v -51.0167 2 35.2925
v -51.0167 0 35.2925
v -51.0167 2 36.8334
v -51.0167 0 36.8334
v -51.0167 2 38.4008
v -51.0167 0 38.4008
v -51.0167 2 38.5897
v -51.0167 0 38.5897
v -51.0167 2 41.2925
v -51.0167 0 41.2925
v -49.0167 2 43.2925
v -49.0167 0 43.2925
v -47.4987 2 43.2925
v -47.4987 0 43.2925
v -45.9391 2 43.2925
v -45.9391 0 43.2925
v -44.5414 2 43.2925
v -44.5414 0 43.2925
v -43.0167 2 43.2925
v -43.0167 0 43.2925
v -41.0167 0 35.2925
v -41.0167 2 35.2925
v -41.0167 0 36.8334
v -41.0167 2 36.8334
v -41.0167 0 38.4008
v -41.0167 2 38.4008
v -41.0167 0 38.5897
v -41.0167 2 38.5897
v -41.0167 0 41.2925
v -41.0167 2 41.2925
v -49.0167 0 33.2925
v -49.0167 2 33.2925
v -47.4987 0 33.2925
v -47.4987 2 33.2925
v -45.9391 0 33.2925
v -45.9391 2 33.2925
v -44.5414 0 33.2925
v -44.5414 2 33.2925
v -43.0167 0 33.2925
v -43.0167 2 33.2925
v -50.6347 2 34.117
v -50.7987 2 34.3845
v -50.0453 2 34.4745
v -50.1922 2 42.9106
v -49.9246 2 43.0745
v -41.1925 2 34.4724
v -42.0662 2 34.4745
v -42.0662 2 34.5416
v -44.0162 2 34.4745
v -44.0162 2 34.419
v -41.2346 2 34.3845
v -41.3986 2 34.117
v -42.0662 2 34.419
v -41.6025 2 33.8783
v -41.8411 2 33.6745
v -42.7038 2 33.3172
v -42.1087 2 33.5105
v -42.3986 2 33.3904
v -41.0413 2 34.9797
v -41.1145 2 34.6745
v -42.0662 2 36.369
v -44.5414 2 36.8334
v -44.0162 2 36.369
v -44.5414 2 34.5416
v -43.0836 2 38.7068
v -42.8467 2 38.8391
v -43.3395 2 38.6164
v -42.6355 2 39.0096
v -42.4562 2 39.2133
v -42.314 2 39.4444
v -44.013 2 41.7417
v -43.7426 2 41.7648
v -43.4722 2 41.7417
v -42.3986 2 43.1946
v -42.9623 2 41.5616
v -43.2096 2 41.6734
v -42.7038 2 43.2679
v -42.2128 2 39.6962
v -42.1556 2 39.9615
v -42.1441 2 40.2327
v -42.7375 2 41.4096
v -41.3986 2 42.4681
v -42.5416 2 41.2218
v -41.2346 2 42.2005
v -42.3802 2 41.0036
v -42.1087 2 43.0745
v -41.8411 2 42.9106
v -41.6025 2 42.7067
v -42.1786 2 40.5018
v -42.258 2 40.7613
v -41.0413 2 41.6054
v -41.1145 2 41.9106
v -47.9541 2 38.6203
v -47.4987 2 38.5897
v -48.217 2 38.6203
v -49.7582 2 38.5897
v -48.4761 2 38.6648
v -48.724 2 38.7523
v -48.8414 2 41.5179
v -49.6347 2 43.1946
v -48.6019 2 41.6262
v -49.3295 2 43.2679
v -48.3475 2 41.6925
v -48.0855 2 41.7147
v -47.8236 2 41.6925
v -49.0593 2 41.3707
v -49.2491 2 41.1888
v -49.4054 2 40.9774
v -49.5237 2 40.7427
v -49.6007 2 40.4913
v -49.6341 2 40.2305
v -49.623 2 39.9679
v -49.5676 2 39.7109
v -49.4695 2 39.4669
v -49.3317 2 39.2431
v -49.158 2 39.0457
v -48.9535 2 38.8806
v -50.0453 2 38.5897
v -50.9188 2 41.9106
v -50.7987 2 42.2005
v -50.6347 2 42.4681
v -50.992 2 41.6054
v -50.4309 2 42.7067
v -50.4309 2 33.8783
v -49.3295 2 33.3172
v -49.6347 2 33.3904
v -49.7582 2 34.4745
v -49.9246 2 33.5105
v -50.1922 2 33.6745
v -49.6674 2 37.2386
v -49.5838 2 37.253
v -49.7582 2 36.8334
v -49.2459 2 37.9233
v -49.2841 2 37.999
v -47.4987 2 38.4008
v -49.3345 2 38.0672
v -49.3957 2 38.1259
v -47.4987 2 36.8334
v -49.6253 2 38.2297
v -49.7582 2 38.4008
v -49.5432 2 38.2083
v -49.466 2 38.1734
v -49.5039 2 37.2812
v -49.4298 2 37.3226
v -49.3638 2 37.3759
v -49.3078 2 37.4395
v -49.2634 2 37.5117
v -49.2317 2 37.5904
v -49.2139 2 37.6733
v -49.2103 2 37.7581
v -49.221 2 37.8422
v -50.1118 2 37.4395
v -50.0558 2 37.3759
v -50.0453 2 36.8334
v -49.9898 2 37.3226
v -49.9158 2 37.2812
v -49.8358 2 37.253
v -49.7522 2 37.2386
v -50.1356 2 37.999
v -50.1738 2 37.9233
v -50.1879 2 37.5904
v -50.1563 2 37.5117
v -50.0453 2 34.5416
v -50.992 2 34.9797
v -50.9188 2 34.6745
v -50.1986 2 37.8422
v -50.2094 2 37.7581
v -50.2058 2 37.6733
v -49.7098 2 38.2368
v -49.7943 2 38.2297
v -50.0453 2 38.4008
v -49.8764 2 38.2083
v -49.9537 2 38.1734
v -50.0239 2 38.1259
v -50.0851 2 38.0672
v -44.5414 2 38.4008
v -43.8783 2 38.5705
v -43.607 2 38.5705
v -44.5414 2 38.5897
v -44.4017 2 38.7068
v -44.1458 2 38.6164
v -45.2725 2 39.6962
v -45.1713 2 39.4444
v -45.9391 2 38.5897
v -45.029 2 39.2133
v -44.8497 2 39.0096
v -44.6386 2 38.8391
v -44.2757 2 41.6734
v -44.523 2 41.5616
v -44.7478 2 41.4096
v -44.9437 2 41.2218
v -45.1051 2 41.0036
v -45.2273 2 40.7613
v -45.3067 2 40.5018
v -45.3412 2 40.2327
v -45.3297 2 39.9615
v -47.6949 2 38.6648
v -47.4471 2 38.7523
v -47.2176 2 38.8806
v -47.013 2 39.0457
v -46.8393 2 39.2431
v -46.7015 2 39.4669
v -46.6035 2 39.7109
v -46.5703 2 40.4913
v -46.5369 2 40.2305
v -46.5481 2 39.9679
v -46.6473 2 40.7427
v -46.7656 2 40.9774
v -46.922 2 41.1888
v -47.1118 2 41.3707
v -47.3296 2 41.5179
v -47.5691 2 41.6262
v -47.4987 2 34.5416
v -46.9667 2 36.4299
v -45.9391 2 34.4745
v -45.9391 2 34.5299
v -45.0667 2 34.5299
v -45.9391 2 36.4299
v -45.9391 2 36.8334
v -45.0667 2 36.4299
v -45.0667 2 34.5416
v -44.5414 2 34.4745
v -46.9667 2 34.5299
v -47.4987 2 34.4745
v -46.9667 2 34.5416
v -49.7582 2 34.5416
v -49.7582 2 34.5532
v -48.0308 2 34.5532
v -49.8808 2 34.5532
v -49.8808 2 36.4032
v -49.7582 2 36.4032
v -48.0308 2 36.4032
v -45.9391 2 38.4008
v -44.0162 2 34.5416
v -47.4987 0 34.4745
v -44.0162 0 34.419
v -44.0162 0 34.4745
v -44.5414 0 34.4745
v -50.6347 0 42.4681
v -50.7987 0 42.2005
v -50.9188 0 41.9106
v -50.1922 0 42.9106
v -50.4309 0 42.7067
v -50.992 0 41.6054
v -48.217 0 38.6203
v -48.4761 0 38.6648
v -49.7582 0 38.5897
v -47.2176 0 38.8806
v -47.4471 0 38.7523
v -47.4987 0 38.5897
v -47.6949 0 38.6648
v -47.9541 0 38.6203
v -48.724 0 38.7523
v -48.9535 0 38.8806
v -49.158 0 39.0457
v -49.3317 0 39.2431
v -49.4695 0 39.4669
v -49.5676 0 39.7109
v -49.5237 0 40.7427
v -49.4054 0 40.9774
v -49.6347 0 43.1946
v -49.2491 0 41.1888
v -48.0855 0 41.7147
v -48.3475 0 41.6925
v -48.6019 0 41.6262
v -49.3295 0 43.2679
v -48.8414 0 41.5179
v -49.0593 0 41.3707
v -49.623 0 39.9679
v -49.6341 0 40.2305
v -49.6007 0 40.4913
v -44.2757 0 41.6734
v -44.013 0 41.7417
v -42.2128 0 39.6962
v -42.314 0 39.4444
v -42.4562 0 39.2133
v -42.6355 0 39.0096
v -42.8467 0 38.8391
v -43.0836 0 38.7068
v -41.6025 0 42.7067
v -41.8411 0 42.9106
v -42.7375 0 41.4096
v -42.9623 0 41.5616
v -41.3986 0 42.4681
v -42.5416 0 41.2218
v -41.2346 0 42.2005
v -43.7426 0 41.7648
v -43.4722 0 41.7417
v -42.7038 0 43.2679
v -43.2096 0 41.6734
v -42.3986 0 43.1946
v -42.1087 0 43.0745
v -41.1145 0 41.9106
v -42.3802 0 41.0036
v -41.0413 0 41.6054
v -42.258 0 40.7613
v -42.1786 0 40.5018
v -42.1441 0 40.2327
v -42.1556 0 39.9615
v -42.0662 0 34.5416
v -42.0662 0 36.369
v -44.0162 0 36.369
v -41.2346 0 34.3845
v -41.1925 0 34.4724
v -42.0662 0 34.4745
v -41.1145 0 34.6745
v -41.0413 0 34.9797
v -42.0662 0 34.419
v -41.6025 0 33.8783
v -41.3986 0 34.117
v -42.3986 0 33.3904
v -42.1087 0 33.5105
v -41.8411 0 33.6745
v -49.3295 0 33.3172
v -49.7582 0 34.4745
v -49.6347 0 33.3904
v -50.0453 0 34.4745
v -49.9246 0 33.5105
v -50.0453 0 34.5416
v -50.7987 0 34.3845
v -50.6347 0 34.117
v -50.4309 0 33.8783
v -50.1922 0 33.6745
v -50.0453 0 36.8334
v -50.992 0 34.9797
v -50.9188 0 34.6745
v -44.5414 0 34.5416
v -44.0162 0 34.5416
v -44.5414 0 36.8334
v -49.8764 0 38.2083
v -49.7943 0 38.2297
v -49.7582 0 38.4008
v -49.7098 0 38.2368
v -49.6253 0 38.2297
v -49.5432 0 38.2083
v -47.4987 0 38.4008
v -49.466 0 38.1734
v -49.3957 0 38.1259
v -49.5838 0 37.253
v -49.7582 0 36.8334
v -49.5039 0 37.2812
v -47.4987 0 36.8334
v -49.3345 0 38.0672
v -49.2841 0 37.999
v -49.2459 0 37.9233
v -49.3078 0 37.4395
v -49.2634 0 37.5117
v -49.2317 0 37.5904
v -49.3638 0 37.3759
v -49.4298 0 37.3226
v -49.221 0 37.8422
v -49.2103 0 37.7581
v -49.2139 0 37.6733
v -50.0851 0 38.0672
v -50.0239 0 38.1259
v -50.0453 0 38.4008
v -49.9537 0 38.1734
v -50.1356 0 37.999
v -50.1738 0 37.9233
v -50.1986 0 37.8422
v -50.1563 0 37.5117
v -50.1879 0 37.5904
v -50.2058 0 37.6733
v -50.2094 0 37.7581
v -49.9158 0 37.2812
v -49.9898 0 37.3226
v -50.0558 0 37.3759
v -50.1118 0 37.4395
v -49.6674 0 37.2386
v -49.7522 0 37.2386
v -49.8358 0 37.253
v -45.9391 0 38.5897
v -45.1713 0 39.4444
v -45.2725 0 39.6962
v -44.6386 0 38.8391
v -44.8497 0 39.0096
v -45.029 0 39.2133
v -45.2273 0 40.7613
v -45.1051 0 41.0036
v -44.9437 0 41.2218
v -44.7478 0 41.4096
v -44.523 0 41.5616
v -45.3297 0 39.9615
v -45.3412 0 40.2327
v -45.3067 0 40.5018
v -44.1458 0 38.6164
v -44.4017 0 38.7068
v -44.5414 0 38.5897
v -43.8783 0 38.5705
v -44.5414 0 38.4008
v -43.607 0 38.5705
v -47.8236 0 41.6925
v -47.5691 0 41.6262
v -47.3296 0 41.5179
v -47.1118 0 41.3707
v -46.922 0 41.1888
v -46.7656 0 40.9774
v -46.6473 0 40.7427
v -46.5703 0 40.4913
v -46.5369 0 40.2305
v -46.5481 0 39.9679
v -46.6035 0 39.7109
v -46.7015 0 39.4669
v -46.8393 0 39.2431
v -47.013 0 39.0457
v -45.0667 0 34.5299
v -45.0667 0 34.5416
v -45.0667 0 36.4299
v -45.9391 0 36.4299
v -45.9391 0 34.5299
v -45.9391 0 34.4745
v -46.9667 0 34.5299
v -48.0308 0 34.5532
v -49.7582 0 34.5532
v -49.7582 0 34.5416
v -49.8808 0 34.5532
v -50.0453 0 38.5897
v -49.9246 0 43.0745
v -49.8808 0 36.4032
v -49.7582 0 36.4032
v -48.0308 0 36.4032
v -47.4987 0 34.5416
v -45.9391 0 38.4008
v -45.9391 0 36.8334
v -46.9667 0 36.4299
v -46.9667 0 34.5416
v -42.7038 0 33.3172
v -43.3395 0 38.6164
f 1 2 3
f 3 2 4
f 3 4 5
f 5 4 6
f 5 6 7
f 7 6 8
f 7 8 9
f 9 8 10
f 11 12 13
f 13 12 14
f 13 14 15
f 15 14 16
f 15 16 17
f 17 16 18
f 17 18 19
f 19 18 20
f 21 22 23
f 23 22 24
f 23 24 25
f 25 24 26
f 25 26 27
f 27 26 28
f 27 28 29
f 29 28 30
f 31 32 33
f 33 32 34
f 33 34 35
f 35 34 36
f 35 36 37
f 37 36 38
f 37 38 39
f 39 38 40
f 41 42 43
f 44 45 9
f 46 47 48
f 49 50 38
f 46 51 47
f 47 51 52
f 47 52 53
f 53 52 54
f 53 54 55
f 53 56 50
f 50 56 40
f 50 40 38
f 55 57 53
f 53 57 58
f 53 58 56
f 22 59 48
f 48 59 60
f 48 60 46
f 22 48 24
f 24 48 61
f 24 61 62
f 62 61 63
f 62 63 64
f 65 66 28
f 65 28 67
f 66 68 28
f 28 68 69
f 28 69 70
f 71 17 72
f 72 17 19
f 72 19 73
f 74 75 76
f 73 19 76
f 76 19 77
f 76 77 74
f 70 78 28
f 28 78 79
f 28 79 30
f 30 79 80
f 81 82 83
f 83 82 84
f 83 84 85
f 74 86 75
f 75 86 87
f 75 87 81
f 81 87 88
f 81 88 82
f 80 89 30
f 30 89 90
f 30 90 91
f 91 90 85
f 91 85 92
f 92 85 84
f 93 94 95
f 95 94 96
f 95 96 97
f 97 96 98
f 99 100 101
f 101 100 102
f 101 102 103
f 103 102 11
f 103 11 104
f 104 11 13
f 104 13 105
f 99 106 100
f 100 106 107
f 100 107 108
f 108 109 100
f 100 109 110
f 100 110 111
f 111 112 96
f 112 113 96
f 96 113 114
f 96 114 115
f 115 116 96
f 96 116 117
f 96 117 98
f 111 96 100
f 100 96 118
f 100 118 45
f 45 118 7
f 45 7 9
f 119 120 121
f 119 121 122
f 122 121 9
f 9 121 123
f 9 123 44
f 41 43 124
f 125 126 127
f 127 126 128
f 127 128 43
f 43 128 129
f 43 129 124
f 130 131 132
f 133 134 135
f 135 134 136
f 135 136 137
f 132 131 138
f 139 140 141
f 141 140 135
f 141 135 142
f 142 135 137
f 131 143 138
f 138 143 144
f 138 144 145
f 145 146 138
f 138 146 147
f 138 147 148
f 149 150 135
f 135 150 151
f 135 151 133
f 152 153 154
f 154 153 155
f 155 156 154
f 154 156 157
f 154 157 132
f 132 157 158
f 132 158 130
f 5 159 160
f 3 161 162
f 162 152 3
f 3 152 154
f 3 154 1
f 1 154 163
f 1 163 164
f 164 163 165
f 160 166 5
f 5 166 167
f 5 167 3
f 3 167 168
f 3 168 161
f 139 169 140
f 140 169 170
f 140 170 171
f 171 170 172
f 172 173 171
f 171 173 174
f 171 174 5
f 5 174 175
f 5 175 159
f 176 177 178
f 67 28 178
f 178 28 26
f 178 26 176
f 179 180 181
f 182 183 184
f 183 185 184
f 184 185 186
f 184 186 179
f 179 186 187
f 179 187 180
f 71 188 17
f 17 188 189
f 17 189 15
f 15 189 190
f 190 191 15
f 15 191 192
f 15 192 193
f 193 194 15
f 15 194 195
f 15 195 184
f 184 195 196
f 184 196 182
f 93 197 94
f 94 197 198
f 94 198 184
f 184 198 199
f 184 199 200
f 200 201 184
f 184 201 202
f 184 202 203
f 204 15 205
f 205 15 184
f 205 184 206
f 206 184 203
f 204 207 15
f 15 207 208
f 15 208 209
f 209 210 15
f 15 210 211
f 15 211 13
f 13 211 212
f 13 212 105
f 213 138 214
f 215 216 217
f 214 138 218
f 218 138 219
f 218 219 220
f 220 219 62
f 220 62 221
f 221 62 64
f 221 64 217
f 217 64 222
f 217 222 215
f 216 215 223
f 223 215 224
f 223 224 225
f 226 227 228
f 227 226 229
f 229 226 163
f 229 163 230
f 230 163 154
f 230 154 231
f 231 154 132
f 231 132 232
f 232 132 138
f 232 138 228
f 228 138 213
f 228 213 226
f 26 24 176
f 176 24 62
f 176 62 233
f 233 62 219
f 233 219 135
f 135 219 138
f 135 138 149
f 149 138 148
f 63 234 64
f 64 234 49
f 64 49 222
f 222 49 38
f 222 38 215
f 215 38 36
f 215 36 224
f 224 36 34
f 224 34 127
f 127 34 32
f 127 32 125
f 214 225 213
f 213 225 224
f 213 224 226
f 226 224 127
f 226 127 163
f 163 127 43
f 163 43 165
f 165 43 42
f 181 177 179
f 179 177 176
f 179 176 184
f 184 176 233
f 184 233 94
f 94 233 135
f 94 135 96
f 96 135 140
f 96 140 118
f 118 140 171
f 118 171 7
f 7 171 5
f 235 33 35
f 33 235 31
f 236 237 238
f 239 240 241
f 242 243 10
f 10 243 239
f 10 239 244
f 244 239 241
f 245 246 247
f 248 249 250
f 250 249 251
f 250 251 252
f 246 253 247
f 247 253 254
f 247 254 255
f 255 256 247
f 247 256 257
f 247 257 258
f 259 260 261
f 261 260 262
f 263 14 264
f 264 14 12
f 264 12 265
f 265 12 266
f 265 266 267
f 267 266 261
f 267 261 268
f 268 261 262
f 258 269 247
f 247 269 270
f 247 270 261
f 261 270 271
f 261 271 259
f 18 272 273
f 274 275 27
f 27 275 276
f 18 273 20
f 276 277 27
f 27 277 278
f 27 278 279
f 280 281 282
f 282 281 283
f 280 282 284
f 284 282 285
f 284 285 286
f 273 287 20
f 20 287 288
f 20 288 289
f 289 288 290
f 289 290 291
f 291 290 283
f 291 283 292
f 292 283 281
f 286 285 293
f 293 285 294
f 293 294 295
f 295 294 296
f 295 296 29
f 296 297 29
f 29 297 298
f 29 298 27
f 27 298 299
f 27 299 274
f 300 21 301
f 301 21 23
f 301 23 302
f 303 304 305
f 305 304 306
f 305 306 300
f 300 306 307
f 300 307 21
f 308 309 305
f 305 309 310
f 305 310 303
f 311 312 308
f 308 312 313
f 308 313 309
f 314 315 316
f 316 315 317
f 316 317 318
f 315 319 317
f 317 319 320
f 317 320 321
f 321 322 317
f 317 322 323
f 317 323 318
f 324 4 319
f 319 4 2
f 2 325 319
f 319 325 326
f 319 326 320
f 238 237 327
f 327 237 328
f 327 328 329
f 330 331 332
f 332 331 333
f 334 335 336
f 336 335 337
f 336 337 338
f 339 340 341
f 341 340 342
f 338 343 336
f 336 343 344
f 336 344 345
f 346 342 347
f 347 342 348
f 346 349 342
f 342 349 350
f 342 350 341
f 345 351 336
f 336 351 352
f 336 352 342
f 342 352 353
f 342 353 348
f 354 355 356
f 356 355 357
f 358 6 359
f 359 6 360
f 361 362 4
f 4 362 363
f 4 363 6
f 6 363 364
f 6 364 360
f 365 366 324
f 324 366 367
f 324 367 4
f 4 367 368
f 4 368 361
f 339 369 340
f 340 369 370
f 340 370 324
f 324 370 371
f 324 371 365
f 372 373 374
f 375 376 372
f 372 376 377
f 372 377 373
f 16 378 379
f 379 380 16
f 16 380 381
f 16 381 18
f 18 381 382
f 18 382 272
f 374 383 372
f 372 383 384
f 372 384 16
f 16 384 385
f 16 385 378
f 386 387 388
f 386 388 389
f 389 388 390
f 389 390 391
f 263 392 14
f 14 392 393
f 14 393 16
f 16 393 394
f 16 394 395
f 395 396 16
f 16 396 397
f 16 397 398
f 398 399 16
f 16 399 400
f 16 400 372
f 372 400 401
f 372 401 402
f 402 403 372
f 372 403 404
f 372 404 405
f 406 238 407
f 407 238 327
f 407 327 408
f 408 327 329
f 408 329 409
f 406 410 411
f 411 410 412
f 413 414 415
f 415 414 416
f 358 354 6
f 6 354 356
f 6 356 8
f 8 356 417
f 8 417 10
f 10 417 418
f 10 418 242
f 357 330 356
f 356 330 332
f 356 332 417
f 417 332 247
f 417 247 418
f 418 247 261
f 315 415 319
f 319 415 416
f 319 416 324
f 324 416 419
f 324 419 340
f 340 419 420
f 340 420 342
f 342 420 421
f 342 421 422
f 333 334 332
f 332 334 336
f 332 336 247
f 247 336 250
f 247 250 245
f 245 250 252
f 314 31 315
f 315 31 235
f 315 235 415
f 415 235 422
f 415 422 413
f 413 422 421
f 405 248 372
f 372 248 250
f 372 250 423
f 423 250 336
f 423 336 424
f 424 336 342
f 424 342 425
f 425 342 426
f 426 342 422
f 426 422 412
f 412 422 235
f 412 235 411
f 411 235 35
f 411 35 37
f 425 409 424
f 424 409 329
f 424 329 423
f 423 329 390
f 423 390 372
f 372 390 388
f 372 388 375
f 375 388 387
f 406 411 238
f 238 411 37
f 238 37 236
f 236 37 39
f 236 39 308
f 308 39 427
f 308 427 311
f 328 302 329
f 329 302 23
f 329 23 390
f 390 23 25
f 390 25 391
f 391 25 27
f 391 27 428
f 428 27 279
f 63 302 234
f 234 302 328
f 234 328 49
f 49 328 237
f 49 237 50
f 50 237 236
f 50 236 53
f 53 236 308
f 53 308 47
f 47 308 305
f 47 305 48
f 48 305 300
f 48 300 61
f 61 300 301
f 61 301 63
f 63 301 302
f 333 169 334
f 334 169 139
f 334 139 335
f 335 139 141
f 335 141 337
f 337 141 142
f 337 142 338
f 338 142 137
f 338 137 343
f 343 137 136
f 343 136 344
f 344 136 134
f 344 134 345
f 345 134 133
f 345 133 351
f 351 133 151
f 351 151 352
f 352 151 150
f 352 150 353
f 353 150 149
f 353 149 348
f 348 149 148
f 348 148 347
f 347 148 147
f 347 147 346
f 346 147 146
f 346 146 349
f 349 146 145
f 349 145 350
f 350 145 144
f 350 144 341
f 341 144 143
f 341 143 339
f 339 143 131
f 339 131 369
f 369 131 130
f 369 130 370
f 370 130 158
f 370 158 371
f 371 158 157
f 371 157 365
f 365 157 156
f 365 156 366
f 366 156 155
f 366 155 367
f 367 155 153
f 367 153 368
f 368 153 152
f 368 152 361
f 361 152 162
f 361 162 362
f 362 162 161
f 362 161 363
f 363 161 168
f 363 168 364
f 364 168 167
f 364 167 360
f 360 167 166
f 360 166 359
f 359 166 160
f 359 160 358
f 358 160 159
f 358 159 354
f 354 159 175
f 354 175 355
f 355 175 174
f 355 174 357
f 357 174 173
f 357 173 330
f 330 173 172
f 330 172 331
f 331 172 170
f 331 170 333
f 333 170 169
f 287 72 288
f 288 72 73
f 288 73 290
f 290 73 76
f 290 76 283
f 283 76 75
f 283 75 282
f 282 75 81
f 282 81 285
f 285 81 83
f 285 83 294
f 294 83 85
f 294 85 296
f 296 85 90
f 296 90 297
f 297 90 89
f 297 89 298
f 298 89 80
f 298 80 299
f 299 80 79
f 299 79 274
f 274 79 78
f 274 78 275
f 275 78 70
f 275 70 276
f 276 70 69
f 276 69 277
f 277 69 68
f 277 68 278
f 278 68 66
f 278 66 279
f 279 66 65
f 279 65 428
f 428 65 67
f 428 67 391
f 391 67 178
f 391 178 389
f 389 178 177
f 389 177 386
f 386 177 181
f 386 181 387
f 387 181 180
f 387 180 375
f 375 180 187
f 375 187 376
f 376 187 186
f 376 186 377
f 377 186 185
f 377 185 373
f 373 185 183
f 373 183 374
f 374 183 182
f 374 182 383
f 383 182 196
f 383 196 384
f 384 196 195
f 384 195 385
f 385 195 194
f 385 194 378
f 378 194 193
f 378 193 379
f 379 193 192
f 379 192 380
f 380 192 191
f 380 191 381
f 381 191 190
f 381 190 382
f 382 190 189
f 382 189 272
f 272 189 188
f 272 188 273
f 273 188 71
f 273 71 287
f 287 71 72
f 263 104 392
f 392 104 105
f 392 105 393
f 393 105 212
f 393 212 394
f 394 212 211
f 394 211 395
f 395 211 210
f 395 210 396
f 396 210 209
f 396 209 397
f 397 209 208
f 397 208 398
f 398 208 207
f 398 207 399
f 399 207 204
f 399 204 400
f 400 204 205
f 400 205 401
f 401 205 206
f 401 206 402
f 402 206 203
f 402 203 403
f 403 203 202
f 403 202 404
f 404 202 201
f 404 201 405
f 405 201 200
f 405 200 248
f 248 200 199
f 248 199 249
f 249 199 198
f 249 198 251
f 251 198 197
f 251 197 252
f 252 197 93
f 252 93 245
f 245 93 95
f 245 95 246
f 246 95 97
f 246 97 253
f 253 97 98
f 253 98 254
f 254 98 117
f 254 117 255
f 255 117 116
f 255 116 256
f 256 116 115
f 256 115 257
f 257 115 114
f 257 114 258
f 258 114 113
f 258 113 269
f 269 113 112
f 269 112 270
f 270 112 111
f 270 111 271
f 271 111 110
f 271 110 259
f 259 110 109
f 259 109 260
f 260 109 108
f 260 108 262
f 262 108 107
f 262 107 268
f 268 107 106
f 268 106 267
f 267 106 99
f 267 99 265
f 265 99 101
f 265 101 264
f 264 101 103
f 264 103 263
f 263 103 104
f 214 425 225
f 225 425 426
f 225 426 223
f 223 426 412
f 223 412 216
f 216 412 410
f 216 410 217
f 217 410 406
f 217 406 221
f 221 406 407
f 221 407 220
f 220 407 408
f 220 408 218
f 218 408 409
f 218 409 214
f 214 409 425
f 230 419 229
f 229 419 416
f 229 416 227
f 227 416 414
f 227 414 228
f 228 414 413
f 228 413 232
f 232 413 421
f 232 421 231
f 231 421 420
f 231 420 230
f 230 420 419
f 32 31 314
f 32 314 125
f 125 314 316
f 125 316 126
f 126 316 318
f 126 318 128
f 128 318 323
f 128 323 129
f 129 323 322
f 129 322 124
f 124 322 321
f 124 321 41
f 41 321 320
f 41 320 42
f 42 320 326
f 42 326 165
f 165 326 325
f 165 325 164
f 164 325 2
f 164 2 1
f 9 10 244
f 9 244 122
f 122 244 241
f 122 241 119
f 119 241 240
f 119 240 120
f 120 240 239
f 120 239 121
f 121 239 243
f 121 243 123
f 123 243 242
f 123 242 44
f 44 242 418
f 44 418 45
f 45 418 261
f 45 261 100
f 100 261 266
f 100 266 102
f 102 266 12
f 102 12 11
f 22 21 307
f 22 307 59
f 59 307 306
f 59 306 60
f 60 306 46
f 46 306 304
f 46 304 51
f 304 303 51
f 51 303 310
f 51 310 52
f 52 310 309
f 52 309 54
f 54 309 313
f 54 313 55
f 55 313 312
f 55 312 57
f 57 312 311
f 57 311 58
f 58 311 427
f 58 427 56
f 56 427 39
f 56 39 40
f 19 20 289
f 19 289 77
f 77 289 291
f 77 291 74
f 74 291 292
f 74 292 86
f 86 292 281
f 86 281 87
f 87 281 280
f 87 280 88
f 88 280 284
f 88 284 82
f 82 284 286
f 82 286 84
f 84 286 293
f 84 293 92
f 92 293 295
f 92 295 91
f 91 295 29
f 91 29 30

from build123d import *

# Parameters (mm, degrees)
SKETCH1_W           = 10
SKETCH1_H           = 10
BOSS_EXTRUDE1_DEPTH = 2
SKETCH2_R           = 1.55
SKETCH2_R_2         = 1.6
SKETCH2_R_3         = 0.5
SKETCH2_W           = 1.85
SKETCH2_H           = 1.85
SKETCH2_W_2         = 1.95
SKETCH2_H_2         = 1.95
SKETCH2_W_3         = 1.9
SKETCH2_H_3         = 1.9
CUT_EXTRUDE1_DEPTH  = 10
FILLET1_R           = 2


with BuildPart() as part:
    # Sketch1 → Boss-Extrude1 (new body)
    with BuildSketch(Plane(origin=(0, 0, 0), x_dir=(1, 0, 0), z_dir=(0, 1, 0))):
        with Locations((-46.016664058, -38.292528072)):
            Rectangle(SKETCH1_W, SKETCH1_H)
    extrude(amount=BOSS_EXTRUDE1_DEPTH)

    # Sketch2 → Cut-Extrude1 (cut)
    with BuildSketch(Plane(origin=(0, 2, 0), x_dir=(1, 0, 0), z_dir=(0, 1, 0))):
        with Locations(Location((-48.08551258, -40.164750495, 0), (0, 0, 270))):
            Circle(SKETCH2_R)
        with Locations(Location((-43.742640476, -40.164750495, 0), (0, 0, 270))):
            Circle(SKETCH2_R_2)
        with Locations(Location((-49.709815138, -37.736845618, 0), (0, 0, 270))):
            Circle(SKETCH2_R_3)
        with Locations((-48.955794355, -35.478207728)):
            Rectangle(SKETCH2_W, SKETCH2_H)
        with Locations((-43.041207223, -35.394011884)):
            Rectangle(SKETCH2_W_2, SKETCH2_H_2)
        with Locations((-46.016664058, -35.479919958)):
            Rectangle(SKETCH2_W_3, SKETCH2_H_3)
    extrude(amount=-CUT_EXTRUDE1_DEPTH, mode=Mode.SUBTRACT)

    # Fillet1
    fillet1_edges = [part.edges().sort_by_distance(p)[0] for p in [
        (-51.016664058, 1, 33.292528072),
        (-41.016664058, 1, 33.292528072),
        (-41.016664058, 1, 43.292528072),
        (-51.016664058, 1, 43.292528072),
    ]]
    fillet(fillet1_edges, radius=FILLET1_R)


solid = part.part
